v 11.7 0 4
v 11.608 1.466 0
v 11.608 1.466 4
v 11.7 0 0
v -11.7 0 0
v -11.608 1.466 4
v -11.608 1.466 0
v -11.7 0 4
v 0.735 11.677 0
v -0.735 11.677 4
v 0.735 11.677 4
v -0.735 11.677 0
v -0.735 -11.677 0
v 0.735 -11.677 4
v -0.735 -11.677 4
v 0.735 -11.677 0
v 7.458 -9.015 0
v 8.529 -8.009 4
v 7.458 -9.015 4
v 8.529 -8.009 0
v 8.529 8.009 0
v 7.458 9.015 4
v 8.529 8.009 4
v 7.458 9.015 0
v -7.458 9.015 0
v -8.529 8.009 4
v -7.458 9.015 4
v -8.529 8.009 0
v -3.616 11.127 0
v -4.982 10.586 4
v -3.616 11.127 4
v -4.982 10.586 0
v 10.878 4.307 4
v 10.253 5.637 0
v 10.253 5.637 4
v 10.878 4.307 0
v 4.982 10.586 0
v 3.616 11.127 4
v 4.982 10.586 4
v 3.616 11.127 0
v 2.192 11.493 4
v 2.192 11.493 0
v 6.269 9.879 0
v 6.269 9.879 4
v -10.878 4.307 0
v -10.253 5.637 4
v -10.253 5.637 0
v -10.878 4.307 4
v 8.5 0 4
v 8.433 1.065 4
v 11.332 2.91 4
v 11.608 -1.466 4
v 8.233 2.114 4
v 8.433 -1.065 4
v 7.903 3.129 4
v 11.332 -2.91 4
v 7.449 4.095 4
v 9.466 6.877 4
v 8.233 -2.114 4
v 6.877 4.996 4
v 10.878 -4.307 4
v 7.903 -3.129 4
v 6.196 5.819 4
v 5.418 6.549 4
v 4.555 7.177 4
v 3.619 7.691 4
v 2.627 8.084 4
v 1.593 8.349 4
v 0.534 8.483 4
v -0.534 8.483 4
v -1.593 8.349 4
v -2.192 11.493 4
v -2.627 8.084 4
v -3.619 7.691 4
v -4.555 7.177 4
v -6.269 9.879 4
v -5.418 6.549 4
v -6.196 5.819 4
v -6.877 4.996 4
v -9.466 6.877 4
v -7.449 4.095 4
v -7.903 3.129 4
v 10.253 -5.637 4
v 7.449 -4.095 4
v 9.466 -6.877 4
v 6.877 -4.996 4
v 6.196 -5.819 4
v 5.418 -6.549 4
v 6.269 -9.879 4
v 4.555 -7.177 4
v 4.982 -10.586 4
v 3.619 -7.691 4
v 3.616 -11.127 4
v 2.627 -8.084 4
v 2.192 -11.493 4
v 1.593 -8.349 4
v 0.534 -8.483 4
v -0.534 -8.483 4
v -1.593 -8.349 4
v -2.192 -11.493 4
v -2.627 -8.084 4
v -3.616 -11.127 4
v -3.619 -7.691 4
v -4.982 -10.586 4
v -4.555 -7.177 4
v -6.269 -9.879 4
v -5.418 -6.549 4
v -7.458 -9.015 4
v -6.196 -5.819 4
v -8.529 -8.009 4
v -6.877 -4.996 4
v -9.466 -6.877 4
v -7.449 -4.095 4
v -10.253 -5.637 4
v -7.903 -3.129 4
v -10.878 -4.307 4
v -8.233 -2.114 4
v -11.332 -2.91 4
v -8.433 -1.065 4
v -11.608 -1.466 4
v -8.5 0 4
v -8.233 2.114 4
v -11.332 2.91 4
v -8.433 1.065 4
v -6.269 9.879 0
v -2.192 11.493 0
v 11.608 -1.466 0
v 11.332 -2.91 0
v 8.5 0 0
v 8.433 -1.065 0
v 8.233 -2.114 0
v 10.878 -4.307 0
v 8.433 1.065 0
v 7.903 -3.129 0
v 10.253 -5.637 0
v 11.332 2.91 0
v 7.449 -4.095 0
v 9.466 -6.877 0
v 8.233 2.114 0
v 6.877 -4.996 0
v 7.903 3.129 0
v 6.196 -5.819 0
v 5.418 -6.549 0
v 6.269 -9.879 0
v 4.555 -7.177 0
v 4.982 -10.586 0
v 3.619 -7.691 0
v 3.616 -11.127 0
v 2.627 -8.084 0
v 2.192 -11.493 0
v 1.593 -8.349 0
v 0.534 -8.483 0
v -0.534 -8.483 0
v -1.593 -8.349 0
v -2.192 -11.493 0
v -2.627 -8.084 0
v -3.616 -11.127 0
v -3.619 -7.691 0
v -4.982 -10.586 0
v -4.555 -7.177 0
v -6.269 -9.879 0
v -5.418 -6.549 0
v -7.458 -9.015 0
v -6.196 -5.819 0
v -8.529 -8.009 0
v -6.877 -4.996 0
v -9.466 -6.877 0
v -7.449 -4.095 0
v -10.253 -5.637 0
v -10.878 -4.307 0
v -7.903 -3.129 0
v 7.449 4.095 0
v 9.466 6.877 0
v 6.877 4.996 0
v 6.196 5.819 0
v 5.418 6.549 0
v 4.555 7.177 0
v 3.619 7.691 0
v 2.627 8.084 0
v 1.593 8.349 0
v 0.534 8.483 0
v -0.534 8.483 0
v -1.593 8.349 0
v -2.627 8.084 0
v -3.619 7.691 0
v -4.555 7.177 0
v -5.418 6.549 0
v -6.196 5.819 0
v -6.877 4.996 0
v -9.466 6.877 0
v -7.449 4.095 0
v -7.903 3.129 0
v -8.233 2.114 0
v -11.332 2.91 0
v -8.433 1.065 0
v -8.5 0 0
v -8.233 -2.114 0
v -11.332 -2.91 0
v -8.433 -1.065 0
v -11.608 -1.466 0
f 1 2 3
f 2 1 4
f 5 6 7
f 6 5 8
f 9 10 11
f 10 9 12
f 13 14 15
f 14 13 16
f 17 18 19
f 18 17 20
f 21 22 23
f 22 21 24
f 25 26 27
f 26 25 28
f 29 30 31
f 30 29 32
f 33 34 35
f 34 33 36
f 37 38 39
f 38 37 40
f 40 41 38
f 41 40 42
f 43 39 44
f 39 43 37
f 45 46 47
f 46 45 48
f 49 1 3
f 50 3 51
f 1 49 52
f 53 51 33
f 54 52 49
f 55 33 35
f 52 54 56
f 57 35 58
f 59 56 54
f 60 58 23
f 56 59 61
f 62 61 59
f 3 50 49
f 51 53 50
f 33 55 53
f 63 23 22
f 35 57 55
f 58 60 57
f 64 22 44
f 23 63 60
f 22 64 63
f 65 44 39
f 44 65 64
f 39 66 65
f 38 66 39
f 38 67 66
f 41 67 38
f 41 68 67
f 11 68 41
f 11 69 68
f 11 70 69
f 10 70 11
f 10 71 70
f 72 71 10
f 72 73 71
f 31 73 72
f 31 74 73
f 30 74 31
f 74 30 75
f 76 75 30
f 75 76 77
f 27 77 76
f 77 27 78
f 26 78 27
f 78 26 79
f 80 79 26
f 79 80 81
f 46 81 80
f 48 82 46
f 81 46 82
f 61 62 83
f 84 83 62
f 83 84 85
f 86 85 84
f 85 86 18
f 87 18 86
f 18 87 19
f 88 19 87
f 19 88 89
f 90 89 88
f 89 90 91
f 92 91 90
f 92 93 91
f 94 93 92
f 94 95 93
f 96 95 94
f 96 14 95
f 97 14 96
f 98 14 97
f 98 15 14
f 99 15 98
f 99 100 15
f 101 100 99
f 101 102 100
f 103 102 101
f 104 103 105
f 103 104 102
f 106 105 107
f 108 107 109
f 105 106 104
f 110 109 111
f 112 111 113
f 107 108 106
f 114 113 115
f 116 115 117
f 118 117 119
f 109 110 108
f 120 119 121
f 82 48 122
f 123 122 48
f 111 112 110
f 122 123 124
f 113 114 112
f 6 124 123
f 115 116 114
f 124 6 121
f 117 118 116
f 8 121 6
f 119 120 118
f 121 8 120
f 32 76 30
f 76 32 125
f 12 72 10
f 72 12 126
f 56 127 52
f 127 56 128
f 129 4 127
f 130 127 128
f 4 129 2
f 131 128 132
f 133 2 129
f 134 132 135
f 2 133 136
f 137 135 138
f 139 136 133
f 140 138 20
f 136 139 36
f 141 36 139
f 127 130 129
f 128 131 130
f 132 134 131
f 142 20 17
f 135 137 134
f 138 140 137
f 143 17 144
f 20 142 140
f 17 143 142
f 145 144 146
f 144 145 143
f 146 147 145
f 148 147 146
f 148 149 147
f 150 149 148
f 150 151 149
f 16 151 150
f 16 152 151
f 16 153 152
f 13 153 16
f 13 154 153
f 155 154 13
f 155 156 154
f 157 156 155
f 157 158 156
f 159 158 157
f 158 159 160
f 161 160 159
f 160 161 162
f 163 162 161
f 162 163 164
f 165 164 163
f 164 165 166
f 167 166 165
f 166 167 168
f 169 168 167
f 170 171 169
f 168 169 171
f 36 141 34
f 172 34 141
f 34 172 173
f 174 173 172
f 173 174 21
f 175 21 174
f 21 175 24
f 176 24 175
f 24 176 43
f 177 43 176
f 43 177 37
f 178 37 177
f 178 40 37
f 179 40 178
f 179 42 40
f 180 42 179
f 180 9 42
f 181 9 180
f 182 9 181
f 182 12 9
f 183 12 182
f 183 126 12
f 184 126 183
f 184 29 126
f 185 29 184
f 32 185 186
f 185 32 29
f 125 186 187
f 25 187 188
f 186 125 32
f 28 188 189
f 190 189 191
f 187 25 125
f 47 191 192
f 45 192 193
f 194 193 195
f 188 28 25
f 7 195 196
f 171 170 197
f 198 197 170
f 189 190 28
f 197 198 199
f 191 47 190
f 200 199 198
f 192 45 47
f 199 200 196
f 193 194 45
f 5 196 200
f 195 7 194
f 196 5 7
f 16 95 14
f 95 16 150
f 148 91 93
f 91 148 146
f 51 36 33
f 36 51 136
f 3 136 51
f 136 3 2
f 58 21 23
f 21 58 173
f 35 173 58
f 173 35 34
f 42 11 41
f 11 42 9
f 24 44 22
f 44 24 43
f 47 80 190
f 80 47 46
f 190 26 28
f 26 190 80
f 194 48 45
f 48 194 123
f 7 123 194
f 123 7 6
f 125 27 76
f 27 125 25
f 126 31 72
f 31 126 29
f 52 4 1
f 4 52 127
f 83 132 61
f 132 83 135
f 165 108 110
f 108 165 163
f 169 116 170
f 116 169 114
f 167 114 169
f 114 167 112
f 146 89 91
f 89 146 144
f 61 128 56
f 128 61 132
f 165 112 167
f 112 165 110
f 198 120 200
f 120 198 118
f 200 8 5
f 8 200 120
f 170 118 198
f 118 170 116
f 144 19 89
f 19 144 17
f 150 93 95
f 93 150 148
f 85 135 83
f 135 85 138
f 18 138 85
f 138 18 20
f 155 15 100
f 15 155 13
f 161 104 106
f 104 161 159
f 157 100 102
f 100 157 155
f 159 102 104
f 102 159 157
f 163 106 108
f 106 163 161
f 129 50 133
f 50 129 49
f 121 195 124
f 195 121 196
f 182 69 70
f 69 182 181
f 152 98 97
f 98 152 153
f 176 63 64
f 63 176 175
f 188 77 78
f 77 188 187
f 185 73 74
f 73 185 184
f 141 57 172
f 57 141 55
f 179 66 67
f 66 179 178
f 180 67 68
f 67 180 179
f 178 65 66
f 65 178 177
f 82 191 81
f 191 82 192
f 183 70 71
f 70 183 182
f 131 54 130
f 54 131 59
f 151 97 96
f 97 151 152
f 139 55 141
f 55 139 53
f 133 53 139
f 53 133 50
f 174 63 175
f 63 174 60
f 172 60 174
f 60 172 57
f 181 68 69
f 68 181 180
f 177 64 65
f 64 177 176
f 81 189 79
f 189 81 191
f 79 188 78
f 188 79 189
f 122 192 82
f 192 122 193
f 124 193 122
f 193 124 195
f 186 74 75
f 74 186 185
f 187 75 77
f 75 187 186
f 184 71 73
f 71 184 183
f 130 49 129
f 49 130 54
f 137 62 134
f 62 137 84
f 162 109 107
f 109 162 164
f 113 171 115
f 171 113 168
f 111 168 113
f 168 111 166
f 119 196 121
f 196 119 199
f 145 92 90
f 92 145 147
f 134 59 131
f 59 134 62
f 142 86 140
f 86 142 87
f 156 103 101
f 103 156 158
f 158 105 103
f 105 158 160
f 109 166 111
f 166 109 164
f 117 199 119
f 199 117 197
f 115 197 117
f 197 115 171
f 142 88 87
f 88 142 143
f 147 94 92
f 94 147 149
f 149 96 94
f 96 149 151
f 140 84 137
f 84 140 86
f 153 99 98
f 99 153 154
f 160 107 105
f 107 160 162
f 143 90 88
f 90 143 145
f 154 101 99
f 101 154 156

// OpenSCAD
$fn = 50;


difference() {
	union() {
		translate(v = [0, 0, 0]) {
			rotate(a = [0, 0, 0]) {
				cylinder(h = 4, r = 11.7000000000);
			}
		}
	}
	union() {
		translate(v = [0, 0, 0]) {
			rotate(a = [0, 0, 0]) {
				cylinder(h = 4, r = 8.5000000000);
			}
		}
	}
}
